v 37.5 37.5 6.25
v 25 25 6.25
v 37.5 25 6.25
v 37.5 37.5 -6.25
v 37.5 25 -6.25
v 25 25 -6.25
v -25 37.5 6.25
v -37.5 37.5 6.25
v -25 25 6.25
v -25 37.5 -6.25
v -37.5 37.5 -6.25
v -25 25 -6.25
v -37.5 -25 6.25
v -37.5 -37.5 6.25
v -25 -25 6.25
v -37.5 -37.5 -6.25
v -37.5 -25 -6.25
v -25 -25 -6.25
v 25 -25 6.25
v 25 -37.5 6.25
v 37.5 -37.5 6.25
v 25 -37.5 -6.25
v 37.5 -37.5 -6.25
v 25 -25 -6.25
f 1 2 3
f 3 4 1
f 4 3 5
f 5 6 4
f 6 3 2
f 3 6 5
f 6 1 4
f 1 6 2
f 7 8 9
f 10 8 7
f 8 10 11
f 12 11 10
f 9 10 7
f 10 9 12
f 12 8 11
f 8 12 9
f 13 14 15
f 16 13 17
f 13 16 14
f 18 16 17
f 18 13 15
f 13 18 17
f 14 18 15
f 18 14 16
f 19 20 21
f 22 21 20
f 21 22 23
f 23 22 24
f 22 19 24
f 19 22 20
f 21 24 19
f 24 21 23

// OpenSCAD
// file: def.scad
block_size_3 = 19;
block_size_4 = 16;
block_size_5 = 14;
block_size_6 = 12.5;
block_size_7 = 11;
block_size_8 = 10;

inf = 1000;

round_radius = 1;
sticker_margin = 2.5;
sticker_round_radius = 0.75;

module _block(size) {
    minkowski() {
        cube([size - round_radius * 2, size - round_radius * 2, size - round_radius * 2], center = true);
        sphere(r = round_radius, $fn = 24);
    }
}

module _selector_0(size) {
    cube([size - 0.2, size - 0.2, size - 0.2], center = true);
}

module _sticker(size) {
    minkowski() {
        cube([size - sticker_margin * 2, size - sticker_margin * 2, 0.1], center = true);
        cylinder(r = sticker_round_radius, h = 0.1, $fn = 24);
    }
}

module _selector_corner_cw(size) {
    difference() {
        cube([size, size, size], center = true);
        rotate([0, -45, 0])
            translate([-inf, -inf, 0])
                cube([inf * 2, inf * 2, inf]);
        rotate([90, 0, 45])
            translate([-inf, -inf, 0])
                cube([inf * 2, inf * 2, inf]);
    }
}

module _selector_corner_ccw(size) {
    difference() {
        cube([size, size, size], center = true);
        rotate([45, 0, 0])
            translate([-inf, -inf, 0])
                cube([inf * 2, inf * 2, inf]);
        rotate([0, -90, -45])
            translate([-inf, -inf, 0])
                cube([inf * 2, inf * 2, inf]);
    }
}

module _selector_edge_cw(size) {
    difference() {
        cube([size, size, size], center = true);
        rotate([90, 0, 45])
            translate([-inf, -inf, 0])
                cube([inf * 2, inf * 2, inf]);
    }
}

module _selector_edge_ccw(size) {
    difference() {
        cube([size, size, size], center = true);
        rotate([0, -90, -45])
            translate([-inf, -inf, 0])
                cube([inf * 2, inf * 2, inf]);
    }
}
// main file
include <def.scad>

for (deg = [0 : 90 : 270])
    rotate([0, 0, deg])
        translate([block_size_6 * 2.5, block_size_6 * 2.5, 0])
            _selector_edge_ccw(block_size_6);
